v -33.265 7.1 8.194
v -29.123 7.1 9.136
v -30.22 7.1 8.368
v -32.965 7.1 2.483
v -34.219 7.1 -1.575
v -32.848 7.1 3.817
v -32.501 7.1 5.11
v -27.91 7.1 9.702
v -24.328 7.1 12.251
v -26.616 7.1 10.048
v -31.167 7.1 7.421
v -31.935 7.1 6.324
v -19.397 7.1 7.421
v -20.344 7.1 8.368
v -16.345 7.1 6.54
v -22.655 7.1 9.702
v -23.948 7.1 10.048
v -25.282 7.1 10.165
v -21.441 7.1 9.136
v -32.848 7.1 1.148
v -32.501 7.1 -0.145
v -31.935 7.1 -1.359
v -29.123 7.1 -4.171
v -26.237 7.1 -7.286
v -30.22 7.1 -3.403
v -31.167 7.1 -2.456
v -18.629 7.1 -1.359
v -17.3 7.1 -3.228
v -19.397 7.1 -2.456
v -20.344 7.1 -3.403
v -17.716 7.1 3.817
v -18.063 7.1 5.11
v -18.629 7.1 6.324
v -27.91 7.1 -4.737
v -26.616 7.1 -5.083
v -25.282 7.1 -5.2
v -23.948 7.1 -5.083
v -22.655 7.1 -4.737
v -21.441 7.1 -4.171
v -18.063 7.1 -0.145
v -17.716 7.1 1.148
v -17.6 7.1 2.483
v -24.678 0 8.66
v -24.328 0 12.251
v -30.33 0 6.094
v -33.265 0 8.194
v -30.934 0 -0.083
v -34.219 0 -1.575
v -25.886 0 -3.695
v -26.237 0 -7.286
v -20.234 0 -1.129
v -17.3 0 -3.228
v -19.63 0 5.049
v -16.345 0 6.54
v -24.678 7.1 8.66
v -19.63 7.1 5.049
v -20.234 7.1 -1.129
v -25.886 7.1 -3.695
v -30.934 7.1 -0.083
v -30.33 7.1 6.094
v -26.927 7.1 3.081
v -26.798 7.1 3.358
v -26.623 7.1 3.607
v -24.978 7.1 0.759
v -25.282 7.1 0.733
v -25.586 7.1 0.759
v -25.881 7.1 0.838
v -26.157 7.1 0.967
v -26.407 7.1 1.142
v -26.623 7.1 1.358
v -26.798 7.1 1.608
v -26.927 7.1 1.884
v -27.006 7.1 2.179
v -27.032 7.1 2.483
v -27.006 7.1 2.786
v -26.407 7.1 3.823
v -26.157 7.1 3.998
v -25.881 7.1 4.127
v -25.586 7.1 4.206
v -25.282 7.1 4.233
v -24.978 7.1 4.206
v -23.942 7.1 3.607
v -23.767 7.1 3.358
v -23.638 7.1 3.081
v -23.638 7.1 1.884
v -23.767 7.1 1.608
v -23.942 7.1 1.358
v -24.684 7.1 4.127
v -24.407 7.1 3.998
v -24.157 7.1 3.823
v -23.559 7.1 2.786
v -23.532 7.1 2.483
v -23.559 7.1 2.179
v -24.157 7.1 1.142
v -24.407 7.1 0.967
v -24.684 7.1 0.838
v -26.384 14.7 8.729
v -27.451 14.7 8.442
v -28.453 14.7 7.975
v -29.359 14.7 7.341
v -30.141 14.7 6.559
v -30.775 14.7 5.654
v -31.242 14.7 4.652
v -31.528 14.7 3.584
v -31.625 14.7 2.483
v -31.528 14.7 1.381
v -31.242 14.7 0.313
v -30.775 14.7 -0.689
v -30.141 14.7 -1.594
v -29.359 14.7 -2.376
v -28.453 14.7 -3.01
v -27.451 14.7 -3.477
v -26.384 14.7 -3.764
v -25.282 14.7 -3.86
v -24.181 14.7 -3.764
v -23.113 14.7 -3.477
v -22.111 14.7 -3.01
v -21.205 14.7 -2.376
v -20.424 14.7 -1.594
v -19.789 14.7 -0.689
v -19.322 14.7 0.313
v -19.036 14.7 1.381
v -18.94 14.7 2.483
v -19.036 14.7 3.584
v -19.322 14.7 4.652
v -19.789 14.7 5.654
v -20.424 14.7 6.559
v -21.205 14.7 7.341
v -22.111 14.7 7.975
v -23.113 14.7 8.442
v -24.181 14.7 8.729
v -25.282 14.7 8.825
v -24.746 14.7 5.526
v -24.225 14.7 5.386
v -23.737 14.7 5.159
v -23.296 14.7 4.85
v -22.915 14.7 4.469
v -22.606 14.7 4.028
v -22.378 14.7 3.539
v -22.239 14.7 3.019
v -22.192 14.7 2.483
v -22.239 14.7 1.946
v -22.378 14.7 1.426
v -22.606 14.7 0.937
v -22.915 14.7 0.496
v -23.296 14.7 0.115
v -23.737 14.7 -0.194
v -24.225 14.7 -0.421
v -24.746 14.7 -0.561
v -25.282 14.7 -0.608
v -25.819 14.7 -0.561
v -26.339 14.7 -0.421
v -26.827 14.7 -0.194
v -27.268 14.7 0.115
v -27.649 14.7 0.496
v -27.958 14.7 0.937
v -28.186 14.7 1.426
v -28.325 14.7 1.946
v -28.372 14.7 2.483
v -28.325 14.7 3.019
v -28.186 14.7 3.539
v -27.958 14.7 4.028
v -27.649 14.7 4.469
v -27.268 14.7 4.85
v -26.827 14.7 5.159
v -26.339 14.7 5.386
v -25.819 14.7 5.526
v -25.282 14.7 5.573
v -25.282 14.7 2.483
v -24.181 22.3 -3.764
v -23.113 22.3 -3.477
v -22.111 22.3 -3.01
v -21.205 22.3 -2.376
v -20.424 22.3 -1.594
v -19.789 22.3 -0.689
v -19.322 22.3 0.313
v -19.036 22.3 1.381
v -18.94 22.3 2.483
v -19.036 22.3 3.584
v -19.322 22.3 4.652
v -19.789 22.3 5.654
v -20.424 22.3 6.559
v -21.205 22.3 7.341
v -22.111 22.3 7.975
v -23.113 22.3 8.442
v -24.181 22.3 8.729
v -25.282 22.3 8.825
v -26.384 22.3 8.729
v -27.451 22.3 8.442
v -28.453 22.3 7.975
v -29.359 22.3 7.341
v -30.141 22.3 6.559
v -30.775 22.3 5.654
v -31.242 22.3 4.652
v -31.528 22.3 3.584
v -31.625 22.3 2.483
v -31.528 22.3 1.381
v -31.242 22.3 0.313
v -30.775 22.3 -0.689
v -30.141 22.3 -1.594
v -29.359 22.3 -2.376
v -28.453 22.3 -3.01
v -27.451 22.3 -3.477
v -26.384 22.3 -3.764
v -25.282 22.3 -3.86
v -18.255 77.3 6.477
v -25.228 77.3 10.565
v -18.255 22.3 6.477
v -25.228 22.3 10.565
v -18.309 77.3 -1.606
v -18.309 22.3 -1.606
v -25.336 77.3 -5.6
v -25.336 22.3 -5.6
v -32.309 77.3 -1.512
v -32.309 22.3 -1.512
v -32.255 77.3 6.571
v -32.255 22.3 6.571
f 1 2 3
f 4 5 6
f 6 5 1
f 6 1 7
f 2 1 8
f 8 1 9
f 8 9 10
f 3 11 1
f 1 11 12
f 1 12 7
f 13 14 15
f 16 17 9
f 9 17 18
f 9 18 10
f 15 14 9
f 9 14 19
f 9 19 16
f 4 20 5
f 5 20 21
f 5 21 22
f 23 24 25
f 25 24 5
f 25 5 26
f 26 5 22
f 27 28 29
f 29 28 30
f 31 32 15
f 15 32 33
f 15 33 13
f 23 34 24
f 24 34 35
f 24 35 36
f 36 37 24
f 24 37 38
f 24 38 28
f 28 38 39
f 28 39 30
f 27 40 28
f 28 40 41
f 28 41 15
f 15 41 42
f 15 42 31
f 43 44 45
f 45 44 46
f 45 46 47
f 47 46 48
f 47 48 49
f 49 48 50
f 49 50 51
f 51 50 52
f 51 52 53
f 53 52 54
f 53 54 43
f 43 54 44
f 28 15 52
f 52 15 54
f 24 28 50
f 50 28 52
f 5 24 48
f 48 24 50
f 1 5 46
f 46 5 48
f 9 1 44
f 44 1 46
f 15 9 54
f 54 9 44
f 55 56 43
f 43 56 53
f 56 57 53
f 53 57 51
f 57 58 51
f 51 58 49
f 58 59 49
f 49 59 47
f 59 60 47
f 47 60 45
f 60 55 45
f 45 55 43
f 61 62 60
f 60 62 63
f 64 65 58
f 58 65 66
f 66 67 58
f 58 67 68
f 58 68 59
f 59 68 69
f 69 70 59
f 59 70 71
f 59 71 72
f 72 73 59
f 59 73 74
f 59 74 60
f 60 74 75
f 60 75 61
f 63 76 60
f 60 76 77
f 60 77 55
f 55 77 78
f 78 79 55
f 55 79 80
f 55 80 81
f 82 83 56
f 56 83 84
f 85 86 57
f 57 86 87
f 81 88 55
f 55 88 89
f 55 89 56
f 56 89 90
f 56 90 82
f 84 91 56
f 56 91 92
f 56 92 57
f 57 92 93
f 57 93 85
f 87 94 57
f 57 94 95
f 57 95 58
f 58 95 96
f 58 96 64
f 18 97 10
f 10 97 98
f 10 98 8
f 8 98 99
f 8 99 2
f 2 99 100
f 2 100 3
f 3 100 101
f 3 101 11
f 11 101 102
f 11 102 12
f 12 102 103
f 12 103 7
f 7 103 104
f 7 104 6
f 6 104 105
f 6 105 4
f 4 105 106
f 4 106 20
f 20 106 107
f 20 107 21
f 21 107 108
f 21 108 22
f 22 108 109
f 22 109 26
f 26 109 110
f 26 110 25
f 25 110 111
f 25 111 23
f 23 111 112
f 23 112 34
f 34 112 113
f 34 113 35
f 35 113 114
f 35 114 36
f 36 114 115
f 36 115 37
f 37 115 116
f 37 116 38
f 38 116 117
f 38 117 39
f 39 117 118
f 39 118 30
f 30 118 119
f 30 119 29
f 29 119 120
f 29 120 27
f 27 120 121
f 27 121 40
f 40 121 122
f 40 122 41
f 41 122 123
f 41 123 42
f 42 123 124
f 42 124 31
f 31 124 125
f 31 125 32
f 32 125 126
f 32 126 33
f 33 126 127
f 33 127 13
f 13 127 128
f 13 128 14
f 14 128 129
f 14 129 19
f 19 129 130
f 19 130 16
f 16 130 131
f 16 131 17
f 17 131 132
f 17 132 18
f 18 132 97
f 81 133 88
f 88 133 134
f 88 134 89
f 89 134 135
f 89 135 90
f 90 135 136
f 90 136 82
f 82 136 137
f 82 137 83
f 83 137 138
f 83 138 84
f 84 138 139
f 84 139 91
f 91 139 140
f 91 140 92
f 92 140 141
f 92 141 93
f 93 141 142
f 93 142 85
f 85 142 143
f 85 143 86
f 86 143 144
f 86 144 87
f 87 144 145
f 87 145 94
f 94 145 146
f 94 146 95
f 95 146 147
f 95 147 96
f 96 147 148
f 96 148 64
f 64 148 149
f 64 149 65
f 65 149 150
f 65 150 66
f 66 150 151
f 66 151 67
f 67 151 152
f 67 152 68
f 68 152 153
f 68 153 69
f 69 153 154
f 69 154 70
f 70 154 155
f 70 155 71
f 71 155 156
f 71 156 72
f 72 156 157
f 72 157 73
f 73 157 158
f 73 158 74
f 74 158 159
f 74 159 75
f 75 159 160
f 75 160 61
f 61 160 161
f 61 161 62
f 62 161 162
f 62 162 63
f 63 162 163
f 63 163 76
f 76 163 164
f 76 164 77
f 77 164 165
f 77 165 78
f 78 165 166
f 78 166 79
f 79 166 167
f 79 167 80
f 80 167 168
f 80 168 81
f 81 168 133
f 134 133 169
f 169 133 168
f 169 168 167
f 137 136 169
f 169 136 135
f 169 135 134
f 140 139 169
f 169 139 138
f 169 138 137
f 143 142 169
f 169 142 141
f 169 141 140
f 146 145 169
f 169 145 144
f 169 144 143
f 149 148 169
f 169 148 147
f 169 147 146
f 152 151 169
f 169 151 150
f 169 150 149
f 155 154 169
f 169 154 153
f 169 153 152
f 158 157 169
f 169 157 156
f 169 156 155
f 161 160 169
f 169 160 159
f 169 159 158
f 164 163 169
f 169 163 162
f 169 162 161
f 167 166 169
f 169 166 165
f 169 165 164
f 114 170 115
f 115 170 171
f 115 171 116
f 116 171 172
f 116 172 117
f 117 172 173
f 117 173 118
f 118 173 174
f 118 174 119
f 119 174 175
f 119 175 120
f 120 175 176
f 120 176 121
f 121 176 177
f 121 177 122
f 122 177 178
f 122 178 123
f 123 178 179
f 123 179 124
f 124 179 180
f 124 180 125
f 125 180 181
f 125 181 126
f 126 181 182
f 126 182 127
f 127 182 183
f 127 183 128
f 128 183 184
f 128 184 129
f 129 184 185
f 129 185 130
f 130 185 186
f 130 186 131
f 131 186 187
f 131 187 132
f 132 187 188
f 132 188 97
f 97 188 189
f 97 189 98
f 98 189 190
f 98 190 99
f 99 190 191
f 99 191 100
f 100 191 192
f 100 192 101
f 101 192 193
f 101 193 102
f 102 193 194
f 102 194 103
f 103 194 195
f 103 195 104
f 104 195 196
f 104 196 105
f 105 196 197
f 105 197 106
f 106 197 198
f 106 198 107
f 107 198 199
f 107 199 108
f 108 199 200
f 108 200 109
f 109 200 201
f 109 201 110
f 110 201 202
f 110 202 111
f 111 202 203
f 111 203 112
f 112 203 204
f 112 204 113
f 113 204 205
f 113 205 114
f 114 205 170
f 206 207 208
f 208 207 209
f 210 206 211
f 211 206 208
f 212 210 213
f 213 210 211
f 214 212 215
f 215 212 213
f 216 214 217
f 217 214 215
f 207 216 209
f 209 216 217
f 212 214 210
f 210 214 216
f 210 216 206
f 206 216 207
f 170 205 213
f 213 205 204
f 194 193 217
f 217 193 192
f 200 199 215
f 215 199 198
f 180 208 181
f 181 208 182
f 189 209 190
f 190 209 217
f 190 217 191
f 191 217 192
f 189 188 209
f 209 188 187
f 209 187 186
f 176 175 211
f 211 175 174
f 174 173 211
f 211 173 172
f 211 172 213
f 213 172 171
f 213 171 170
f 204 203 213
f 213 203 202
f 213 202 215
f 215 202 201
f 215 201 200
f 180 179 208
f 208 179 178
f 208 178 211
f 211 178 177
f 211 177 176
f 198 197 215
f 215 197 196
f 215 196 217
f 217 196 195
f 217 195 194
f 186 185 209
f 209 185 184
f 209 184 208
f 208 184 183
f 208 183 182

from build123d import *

# Parameters (mm, degrees)
BOSS_EXTRUDE1_DEPTH = 7.1
SKETCH2_R           = 7.682494309
SKETCH2_R_2         = 1.75
BOSS_EXTRUDE3_DEPTH = 7.6
BOSS_EXTRUDE3_DRAFT = 10
SKETCH6_R           = 6.342409255
BOSS_EXTRUDE6_DEPTH = 7.6
BOSS_EXTRUDE7_DEPTH = 55


with BuildPart() as part:
    # Sketch1 → Boss-Extrude1 (new body)
    with BuildSketch(Plane(origin=(0, 0, 0), x_dir=(1, 0, 0), z_dir=(0, 1, 0))):
        Polygon((-17.299814282, 3.228425178), (-26.236838815, 7.285878299), (-34.219208559, 1.57491458), (-33.26455377, -8.193502261), (-24.327529237, -12.250955382), (-16.345159493, -6.539991662), align=None)
        Polygon((-19.630317243, -5.048513876), (-20.234050809, 1.129134004), (-25.885917592, 3.695109339), (-30.934050809, 0.083436793), (-30.330317243, -6.094211087), (-24.67845046, -8.660186422), align=None, mode=Mode.SUBTRACT)
    extrude(amount=BOSS_EXTRUDE1_DEPTH)


with BuildPart() as boss_extrude3_tool:
    # Sketch2 → Boss-Extrude3 (with draft: the straight prism first)
    with BuildSketch(Plane(origin=(0, 7.1, 0), x_dir=(1, 0, 0), z_dir=(0, 1, 0))):
        with Locations((-25.282184026, -2.482538541)):
            Circle(SKETCH2_R)
        with Locations((-25.282184026, -2.482538541)):
            Circle(SKETCH2_R_2, mode=Mode.SUBTRACT)
    extrude(amount=BOSS_EXTRUDE3_DEPTH)
    # Boss-Extrude3: the draft: its side faces are tilted about the plane it starts from
    boss_extrude3_sides = [boss_extrude3_tool.faces().sort_by_distance(p)[0] for p in [
        (-32.964678335, 10.9, 2.482538541),
        (-27.032184026, 10.9, 2.482538541),
    ]]
    draft(boss_extrude3_sides, Plane(origin=(0, 7.1, 0), x_dir=(1, 0, 0), z_dir=(0, 1, 0)), BOSS_EXTRUDE3_DRAFT)


with BuildPart() as part_1:
    add(part.part)

    # Boss-Extrude3: add boss_extrude3_tool
    add(boss_extrude3_tool.part)

    # Sketch6 → Boss-Extrude6 (add)
    with BuildSketch(Plane(origin=(0, 14.7, 0), x_dir=(1, 0, 0), z_dir=(0, 1, 0))):
        with Locations(Location((-25.282184026, -2.482538541, 0), (0, 0, 90))):
            Circle(SKETCH6_R)
    extrude(amount=BOSS_EXTRUDE6_DEPTH)

    # Sketch7 → Boss-Extrude7 (add)
    with BuildSketch(Plane(origin=(0, 22.3, 0), x_dir=(1, 0, 0), z_dir=(0, 1, 0))):
        Polygon((-18.255240013, -6.477322026), (-18.309128039, 1.605581742), (-25.336072052, 5.600365227), (-32.309128039, 1.512244944), (-32.255240013, -6.570658825), (-25.228296, -10.56544231), align=None)
    extrude(amount=BOSS_EXTRUDE7_DEPTH)


solid = part_1.part
